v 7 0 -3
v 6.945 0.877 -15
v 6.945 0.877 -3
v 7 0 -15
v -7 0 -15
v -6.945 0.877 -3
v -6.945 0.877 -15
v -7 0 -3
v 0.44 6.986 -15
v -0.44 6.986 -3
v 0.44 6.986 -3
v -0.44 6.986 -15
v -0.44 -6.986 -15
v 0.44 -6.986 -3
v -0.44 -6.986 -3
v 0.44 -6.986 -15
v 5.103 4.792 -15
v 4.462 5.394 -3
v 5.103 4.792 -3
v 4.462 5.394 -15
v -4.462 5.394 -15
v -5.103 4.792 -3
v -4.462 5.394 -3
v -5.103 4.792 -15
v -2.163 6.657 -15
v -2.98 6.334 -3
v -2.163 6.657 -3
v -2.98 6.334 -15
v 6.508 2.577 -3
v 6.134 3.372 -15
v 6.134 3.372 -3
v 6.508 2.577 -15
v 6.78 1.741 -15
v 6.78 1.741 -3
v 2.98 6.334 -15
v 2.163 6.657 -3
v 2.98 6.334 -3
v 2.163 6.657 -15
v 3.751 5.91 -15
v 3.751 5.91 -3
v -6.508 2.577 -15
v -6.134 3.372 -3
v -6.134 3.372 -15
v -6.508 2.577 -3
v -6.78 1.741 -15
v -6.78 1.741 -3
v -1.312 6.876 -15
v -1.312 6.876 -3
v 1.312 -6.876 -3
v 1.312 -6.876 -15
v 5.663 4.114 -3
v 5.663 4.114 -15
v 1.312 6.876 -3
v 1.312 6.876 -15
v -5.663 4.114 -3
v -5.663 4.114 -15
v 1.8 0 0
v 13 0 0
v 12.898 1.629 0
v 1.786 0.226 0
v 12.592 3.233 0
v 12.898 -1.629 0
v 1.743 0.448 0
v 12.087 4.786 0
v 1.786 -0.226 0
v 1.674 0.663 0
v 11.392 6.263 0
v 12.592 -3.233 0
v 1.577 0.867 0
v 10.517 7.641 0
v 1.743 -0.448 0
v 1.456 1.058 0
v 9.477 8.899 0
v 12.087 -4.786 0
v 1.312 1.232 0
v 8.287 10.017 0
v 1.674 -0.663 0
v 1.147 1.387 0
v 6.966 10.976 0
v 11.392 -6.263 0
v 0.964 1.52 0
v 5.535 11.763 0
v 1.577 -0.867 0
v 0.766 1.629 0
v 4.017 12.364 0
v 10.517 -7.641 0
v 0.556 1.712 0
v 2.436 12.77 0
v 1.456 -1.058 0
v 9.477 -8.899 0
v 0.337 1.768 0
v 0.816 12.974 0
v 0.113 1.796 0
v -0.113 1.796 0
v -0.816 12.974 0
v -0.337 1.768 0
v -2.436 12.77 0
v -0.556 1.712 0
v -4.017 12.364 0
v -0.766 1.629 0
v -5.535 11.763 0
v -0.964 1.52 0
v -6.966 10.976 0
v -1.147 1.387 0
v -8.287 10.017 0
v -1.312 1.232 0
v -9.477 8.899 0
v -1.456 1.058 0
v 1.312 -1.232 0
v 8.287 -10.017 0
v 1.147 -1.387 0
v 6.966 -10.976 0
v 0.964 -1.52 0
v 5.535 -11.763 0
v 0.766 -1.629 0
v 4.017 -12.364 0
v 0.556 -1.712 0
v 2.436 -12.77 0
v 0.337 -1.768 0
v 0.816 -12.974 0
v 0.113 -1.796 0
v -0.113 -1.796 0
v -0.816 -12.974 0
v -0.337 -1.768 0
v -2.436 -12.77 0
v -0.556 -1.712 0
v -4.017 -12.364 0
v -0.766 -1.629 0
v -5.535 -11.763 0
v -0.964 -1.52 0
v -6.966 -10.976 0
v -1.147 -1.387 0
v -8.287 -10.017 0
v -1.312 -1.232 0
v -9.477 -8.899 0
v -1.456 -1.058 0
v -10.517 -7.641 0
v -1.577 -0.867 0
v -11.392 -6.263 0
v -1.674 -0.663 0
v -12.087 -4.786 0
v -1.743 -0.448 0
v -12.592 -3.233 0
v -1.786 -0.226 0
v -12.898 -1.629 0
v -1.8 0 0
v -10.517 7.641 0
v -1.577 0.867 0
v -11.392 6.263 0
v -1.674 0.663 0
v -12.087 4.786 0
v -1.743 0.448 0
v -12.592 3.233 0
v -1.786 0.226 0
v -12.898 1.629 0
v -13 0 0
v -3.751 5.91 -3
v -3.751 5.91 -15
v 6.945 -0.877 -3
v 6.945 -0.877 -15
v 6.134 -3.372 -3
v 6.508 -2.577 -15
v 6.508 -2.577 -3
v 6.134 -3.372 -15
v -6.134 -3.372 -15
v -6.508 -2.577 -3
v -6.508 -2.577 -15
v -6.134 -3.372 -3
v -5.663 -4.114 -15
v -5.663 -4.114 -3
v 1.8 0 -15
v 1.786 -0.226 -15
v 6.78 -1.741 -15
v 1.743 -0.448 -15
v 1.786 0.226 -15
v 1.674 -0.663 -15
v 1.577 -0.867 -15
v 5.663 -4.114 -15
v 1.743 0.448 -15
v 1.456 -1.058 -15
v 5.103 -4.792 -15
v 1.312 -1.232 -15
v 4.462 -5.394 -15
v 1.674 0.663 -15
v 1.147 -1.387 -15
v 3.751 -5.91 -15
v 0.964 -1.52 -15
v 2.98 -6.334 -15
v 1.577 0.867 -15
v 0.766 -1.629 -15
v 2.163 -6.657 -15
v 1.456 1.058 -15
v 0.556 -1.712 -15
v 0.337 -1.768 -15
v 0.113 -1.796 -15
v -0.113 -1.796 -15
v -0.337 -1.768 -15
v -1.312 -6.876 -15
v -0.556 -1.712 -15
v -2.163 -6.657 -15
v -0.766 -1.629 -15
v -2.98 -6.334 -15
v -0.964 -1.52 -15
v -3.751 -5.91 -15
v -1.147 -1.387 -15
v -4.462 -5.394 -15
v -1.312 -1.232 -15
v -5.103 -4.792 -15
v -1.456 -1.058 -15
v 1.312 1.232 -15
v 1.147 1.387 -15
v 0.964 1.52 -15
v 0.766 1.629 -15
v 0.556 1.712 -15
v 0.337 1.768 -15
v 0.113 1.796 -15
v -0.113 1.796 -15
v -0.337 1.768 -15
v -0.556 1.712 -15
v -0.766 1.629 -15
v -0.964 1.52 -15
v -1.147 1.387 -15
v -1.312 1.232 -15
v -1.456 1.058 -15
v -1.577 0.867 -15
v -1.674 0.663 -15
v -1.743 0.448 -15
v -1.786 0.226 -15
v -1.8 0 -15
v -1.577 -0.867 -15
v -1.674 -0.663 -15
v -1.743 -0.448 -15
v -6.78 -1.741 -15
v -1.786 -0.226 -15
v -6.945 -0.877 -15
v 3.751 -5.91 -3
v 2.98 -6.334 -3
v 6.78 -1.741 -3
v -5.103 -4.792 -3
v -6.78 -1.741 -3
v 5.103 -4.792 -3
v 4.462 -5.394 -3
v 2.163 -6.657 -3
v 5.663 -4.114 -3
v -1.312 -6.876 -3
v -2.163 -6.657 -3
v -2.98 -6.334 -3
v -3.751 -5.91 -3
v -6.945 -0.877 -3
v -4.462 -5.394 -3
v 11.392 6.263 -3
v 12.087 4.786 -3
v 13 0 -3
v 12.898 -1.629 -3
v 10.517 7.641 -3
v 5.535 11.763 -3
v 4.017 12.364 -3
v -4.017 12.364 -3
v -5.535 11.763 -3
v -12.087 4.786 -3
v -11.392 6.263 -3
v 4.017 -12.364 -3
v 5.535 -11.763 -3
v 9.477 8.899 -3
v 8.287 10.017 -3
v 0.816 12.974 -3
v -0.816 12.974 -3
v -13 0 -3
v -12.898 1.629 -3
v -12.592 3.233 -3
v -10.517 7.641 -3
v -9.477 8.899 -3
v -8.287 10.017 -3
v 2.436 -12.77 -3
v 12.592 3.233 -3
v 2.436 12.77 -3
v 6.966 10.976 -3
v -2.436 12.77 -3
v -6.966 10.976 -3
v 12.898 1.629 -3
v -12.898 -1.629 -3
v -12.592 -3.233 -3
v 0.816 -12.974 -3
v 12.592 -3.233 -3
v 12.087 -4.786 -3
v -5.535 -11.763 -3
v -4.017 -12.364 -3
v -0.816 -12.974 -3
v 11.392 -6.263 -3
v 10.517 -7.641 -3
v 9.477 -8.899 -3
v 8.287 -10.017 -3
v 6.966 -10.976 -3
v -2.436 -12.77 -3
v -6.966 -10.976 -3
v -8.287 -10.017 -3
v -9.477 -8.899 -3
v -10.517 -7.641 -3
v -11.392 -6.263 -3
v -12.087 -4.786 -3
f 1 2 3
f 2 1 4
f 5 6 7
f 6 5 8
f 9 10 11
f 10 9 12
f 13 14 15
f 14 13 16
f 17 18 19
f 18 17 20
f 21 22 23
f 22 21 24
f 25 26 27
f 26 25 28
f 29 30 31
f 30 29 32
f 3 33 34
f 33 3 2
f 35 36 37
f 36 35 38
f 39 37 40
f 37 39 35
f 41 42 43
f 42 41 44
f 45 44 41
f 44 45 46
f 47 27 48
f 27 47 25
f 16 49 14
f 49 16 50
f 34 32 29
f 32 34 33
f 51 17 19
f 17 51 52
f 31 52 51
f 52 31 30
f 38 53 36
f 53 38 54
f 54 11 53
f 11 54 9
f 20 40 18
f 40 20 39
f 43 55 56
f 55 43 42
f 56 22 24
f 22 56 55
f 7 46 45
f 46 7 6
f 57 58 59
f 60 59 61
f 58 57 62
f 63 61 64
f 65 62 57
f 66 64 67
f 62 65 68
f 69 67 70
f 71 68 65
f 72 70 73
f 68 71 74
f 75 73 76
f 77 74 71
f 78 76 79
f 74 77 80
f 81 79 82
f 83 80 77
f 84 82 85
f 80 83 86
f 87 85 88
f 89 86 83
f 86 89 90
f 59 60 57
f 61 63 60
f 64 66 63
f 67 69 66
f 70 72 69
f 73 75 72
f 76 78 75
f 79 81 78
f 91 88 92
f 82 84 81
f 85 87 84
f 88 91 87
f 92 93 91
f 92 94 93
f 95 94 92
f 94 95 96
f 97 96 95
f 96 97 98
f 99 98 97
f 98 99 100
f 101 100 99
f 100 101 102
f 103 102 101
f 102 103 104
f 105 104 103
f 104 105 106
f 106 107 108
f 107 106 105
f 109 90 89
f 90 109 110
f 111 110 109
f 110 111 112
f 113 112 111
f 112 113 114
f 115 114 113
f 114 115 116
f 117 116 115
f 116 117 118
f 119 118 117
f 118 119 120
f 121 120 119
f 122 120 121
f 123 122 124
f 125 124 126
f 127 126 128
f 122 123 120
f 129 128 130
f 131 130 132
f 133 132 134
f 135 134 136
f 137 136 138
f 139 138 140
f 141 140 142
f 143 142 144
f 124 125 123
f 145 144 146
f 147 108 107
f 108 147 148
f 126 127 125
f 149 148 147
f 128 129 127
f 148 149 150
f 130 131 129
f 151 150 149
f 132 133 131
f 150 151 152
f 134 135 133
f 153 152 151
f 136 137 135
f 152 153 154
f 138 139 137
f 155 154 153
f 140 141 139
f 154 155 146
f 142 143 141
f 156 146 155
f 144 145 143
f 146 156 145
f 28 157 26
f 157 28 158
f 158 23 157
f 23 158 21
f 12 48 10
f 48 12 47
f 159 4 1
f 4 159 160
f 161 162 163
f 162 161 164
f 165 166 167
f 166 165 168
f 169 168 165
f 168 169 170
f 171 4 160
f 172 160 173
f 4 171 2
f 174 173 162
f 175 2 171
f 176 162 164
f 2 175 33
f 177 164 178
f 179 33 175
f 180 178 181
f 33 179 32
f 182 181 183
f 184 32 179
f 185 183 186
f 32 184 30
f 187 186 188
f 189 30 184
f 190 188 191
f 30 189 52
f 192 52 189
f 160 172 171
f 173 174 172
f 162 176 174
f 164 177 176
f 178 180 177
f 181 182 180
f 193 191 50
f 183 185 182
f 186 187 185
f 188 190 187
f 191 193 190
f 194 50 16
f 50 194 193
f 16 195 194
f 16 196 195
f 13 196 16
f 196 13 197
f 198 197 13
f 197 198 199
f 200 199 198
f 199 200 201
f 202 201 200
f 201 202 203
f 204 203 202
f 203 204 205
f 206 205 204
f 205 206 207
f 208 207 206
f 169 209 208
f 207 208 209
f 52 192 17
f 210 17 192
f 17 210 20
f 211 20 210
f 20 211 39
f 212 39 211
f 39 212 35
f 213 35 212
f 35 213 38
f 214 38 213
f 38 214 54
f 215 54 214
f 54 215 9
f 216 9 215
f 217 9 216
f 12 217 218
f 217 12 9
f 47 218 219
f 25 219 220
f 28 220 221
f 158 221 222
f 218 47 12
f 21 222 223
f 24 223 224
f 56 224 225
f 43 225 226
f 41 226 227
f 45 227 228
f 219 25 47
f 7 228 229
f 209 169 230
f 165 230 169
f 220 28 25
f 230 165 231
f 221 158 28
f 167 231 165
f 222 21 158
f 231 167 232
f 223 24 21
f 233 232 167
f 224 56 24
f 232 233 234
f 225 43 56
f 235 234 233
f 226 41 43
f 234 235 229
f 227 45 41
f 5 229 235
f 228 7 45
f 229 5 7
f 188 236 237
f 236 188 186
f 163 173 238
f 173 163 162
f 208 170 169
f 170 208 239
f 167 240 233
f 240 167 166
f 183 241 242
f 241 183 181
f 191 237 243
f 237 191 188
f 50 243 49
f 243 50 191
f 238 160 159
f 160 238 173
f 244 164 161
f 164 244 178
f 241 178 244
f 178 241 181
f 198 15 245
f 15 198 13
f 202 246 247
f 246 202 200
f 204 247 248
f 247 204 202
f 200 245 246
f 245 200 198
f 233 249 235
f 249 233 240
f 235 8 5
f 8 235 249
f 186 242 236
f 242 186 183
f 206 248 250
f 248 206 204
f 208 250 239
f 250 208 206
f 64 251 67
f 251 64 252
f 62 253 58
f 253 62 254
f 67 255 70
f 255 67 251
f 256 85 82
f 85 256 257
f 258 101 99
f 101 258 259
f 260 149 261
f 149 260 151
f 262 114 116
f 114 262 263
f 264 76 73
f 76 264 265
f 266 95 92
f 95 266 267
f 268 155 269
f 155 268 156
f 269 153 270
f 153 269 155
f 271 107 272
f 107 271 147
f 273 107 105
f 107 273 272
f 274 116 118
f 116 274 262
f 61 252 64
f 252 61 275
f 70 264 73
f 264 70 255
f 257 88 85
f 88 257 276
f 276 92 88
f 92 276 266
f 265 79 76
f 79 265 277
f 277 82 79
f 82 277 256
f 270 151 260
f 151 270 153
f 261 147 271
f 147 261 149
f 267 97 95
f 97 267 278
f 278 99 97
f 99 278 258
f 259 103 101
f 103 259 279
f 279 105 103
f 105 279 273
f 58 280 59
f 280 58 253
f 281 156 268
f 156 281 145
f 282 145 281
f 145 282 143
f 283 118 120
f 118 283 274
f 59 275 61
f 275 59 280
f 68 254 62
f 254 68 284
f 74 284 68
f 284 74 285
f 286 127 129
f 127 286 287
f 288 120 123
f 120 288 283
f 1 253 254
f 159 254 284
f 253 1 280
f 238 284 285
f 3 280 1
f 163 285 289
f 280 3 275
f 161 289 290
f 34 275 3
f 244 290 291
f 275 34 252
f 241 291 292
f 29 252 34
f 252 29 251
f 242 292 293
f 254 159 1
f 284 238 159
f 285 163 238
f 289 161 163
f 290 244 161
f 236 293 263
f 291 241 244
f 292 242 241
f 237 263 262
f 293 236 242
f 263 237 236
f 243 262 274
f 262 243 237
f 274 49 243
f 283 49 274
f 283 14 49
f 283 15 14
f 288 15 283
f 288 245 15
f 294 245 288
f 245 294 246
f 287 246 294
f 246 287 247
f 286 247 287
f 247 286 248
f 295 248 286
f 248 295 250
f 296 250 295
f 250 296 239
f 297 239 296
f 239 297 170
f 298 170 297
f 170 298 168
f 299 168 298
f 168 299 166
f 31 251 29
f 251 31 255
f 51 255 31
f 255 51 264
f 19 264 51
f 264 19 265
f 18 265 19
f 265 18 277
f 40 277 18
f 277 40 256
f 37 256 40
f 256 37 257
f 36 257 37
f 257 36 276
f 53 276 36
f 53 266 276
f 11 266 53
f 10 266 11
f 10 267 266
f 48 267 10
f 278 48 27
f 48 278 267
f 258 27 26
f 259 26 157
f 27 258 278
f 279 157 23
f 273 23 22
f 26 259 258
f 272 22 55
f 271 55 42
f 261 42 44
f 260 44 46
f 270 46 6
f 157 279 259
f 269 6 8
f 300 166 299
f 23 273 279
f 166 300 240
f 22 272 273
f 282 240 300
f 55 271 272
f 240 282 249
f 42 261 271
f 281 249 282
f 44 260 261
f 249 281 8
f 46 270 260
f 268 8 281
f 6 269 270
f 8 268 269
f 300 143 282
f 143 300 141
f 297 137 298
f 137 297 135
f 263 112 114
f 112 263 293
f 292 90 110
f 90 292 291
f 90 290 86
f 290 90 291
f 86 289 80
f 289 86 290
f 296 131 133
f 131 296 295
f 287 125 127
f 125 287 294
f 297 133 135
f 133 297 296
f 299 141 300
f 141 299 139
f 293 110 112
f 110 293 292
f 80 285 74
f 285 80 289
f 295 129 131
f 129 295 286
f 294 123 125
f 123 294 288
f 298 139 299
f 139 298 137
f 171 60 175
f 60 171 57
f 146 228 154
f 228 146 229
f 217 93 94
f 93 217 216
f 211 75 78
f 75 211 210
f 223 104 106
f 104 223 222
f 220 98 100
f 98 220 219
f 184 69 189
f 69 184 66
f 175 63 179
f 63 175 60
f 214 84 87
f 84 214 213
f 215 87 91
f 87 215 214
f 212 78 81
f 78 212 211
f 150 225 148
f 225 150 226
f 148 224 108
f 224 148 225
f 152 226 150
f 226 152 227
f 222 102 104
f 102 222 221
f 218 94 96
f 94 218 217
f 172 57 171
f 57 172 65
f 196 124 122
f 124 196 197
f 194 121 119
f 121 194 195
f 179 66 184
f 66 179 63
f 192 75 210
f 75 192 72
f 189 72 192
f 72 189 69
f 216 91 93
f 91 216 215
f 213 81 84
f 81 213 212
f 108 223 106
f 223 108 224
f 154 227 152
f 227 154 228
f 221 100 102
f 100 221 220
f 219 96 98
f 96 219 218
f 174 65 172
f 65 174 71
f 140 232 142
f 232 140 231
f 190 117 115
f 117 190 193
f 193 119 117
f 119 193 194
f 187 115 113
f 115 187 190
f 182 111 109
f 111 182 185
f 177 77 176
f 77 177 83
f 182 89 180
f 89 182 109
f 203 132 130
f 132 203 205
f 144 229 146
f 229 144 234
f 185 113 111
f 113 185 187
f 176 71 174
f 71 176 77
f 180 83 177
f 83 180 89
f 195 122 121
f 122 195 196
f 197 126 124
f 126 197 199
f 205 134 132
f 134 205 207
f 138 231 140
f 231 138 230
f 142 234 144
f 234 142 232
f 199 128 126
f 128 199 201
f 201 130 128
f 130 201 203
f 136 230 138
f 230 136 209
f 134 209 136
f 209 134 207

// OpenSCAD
$fn = 50;


difference() {
	union() {
		translate(v = [0, 0, -15.0000000000]) {
			cylinder(h = 15, r = 7.0000000000);
		}
		translate(v = [0, 0, -3.0000000000]) {
			cylinder(h = 3, r = 13.0000000000);
		}
	}
	union() {
		#translate(v = [0, 0, -15]) {
			cylinder(h = 15, r = 1.8000000000);
		}
	}
}
